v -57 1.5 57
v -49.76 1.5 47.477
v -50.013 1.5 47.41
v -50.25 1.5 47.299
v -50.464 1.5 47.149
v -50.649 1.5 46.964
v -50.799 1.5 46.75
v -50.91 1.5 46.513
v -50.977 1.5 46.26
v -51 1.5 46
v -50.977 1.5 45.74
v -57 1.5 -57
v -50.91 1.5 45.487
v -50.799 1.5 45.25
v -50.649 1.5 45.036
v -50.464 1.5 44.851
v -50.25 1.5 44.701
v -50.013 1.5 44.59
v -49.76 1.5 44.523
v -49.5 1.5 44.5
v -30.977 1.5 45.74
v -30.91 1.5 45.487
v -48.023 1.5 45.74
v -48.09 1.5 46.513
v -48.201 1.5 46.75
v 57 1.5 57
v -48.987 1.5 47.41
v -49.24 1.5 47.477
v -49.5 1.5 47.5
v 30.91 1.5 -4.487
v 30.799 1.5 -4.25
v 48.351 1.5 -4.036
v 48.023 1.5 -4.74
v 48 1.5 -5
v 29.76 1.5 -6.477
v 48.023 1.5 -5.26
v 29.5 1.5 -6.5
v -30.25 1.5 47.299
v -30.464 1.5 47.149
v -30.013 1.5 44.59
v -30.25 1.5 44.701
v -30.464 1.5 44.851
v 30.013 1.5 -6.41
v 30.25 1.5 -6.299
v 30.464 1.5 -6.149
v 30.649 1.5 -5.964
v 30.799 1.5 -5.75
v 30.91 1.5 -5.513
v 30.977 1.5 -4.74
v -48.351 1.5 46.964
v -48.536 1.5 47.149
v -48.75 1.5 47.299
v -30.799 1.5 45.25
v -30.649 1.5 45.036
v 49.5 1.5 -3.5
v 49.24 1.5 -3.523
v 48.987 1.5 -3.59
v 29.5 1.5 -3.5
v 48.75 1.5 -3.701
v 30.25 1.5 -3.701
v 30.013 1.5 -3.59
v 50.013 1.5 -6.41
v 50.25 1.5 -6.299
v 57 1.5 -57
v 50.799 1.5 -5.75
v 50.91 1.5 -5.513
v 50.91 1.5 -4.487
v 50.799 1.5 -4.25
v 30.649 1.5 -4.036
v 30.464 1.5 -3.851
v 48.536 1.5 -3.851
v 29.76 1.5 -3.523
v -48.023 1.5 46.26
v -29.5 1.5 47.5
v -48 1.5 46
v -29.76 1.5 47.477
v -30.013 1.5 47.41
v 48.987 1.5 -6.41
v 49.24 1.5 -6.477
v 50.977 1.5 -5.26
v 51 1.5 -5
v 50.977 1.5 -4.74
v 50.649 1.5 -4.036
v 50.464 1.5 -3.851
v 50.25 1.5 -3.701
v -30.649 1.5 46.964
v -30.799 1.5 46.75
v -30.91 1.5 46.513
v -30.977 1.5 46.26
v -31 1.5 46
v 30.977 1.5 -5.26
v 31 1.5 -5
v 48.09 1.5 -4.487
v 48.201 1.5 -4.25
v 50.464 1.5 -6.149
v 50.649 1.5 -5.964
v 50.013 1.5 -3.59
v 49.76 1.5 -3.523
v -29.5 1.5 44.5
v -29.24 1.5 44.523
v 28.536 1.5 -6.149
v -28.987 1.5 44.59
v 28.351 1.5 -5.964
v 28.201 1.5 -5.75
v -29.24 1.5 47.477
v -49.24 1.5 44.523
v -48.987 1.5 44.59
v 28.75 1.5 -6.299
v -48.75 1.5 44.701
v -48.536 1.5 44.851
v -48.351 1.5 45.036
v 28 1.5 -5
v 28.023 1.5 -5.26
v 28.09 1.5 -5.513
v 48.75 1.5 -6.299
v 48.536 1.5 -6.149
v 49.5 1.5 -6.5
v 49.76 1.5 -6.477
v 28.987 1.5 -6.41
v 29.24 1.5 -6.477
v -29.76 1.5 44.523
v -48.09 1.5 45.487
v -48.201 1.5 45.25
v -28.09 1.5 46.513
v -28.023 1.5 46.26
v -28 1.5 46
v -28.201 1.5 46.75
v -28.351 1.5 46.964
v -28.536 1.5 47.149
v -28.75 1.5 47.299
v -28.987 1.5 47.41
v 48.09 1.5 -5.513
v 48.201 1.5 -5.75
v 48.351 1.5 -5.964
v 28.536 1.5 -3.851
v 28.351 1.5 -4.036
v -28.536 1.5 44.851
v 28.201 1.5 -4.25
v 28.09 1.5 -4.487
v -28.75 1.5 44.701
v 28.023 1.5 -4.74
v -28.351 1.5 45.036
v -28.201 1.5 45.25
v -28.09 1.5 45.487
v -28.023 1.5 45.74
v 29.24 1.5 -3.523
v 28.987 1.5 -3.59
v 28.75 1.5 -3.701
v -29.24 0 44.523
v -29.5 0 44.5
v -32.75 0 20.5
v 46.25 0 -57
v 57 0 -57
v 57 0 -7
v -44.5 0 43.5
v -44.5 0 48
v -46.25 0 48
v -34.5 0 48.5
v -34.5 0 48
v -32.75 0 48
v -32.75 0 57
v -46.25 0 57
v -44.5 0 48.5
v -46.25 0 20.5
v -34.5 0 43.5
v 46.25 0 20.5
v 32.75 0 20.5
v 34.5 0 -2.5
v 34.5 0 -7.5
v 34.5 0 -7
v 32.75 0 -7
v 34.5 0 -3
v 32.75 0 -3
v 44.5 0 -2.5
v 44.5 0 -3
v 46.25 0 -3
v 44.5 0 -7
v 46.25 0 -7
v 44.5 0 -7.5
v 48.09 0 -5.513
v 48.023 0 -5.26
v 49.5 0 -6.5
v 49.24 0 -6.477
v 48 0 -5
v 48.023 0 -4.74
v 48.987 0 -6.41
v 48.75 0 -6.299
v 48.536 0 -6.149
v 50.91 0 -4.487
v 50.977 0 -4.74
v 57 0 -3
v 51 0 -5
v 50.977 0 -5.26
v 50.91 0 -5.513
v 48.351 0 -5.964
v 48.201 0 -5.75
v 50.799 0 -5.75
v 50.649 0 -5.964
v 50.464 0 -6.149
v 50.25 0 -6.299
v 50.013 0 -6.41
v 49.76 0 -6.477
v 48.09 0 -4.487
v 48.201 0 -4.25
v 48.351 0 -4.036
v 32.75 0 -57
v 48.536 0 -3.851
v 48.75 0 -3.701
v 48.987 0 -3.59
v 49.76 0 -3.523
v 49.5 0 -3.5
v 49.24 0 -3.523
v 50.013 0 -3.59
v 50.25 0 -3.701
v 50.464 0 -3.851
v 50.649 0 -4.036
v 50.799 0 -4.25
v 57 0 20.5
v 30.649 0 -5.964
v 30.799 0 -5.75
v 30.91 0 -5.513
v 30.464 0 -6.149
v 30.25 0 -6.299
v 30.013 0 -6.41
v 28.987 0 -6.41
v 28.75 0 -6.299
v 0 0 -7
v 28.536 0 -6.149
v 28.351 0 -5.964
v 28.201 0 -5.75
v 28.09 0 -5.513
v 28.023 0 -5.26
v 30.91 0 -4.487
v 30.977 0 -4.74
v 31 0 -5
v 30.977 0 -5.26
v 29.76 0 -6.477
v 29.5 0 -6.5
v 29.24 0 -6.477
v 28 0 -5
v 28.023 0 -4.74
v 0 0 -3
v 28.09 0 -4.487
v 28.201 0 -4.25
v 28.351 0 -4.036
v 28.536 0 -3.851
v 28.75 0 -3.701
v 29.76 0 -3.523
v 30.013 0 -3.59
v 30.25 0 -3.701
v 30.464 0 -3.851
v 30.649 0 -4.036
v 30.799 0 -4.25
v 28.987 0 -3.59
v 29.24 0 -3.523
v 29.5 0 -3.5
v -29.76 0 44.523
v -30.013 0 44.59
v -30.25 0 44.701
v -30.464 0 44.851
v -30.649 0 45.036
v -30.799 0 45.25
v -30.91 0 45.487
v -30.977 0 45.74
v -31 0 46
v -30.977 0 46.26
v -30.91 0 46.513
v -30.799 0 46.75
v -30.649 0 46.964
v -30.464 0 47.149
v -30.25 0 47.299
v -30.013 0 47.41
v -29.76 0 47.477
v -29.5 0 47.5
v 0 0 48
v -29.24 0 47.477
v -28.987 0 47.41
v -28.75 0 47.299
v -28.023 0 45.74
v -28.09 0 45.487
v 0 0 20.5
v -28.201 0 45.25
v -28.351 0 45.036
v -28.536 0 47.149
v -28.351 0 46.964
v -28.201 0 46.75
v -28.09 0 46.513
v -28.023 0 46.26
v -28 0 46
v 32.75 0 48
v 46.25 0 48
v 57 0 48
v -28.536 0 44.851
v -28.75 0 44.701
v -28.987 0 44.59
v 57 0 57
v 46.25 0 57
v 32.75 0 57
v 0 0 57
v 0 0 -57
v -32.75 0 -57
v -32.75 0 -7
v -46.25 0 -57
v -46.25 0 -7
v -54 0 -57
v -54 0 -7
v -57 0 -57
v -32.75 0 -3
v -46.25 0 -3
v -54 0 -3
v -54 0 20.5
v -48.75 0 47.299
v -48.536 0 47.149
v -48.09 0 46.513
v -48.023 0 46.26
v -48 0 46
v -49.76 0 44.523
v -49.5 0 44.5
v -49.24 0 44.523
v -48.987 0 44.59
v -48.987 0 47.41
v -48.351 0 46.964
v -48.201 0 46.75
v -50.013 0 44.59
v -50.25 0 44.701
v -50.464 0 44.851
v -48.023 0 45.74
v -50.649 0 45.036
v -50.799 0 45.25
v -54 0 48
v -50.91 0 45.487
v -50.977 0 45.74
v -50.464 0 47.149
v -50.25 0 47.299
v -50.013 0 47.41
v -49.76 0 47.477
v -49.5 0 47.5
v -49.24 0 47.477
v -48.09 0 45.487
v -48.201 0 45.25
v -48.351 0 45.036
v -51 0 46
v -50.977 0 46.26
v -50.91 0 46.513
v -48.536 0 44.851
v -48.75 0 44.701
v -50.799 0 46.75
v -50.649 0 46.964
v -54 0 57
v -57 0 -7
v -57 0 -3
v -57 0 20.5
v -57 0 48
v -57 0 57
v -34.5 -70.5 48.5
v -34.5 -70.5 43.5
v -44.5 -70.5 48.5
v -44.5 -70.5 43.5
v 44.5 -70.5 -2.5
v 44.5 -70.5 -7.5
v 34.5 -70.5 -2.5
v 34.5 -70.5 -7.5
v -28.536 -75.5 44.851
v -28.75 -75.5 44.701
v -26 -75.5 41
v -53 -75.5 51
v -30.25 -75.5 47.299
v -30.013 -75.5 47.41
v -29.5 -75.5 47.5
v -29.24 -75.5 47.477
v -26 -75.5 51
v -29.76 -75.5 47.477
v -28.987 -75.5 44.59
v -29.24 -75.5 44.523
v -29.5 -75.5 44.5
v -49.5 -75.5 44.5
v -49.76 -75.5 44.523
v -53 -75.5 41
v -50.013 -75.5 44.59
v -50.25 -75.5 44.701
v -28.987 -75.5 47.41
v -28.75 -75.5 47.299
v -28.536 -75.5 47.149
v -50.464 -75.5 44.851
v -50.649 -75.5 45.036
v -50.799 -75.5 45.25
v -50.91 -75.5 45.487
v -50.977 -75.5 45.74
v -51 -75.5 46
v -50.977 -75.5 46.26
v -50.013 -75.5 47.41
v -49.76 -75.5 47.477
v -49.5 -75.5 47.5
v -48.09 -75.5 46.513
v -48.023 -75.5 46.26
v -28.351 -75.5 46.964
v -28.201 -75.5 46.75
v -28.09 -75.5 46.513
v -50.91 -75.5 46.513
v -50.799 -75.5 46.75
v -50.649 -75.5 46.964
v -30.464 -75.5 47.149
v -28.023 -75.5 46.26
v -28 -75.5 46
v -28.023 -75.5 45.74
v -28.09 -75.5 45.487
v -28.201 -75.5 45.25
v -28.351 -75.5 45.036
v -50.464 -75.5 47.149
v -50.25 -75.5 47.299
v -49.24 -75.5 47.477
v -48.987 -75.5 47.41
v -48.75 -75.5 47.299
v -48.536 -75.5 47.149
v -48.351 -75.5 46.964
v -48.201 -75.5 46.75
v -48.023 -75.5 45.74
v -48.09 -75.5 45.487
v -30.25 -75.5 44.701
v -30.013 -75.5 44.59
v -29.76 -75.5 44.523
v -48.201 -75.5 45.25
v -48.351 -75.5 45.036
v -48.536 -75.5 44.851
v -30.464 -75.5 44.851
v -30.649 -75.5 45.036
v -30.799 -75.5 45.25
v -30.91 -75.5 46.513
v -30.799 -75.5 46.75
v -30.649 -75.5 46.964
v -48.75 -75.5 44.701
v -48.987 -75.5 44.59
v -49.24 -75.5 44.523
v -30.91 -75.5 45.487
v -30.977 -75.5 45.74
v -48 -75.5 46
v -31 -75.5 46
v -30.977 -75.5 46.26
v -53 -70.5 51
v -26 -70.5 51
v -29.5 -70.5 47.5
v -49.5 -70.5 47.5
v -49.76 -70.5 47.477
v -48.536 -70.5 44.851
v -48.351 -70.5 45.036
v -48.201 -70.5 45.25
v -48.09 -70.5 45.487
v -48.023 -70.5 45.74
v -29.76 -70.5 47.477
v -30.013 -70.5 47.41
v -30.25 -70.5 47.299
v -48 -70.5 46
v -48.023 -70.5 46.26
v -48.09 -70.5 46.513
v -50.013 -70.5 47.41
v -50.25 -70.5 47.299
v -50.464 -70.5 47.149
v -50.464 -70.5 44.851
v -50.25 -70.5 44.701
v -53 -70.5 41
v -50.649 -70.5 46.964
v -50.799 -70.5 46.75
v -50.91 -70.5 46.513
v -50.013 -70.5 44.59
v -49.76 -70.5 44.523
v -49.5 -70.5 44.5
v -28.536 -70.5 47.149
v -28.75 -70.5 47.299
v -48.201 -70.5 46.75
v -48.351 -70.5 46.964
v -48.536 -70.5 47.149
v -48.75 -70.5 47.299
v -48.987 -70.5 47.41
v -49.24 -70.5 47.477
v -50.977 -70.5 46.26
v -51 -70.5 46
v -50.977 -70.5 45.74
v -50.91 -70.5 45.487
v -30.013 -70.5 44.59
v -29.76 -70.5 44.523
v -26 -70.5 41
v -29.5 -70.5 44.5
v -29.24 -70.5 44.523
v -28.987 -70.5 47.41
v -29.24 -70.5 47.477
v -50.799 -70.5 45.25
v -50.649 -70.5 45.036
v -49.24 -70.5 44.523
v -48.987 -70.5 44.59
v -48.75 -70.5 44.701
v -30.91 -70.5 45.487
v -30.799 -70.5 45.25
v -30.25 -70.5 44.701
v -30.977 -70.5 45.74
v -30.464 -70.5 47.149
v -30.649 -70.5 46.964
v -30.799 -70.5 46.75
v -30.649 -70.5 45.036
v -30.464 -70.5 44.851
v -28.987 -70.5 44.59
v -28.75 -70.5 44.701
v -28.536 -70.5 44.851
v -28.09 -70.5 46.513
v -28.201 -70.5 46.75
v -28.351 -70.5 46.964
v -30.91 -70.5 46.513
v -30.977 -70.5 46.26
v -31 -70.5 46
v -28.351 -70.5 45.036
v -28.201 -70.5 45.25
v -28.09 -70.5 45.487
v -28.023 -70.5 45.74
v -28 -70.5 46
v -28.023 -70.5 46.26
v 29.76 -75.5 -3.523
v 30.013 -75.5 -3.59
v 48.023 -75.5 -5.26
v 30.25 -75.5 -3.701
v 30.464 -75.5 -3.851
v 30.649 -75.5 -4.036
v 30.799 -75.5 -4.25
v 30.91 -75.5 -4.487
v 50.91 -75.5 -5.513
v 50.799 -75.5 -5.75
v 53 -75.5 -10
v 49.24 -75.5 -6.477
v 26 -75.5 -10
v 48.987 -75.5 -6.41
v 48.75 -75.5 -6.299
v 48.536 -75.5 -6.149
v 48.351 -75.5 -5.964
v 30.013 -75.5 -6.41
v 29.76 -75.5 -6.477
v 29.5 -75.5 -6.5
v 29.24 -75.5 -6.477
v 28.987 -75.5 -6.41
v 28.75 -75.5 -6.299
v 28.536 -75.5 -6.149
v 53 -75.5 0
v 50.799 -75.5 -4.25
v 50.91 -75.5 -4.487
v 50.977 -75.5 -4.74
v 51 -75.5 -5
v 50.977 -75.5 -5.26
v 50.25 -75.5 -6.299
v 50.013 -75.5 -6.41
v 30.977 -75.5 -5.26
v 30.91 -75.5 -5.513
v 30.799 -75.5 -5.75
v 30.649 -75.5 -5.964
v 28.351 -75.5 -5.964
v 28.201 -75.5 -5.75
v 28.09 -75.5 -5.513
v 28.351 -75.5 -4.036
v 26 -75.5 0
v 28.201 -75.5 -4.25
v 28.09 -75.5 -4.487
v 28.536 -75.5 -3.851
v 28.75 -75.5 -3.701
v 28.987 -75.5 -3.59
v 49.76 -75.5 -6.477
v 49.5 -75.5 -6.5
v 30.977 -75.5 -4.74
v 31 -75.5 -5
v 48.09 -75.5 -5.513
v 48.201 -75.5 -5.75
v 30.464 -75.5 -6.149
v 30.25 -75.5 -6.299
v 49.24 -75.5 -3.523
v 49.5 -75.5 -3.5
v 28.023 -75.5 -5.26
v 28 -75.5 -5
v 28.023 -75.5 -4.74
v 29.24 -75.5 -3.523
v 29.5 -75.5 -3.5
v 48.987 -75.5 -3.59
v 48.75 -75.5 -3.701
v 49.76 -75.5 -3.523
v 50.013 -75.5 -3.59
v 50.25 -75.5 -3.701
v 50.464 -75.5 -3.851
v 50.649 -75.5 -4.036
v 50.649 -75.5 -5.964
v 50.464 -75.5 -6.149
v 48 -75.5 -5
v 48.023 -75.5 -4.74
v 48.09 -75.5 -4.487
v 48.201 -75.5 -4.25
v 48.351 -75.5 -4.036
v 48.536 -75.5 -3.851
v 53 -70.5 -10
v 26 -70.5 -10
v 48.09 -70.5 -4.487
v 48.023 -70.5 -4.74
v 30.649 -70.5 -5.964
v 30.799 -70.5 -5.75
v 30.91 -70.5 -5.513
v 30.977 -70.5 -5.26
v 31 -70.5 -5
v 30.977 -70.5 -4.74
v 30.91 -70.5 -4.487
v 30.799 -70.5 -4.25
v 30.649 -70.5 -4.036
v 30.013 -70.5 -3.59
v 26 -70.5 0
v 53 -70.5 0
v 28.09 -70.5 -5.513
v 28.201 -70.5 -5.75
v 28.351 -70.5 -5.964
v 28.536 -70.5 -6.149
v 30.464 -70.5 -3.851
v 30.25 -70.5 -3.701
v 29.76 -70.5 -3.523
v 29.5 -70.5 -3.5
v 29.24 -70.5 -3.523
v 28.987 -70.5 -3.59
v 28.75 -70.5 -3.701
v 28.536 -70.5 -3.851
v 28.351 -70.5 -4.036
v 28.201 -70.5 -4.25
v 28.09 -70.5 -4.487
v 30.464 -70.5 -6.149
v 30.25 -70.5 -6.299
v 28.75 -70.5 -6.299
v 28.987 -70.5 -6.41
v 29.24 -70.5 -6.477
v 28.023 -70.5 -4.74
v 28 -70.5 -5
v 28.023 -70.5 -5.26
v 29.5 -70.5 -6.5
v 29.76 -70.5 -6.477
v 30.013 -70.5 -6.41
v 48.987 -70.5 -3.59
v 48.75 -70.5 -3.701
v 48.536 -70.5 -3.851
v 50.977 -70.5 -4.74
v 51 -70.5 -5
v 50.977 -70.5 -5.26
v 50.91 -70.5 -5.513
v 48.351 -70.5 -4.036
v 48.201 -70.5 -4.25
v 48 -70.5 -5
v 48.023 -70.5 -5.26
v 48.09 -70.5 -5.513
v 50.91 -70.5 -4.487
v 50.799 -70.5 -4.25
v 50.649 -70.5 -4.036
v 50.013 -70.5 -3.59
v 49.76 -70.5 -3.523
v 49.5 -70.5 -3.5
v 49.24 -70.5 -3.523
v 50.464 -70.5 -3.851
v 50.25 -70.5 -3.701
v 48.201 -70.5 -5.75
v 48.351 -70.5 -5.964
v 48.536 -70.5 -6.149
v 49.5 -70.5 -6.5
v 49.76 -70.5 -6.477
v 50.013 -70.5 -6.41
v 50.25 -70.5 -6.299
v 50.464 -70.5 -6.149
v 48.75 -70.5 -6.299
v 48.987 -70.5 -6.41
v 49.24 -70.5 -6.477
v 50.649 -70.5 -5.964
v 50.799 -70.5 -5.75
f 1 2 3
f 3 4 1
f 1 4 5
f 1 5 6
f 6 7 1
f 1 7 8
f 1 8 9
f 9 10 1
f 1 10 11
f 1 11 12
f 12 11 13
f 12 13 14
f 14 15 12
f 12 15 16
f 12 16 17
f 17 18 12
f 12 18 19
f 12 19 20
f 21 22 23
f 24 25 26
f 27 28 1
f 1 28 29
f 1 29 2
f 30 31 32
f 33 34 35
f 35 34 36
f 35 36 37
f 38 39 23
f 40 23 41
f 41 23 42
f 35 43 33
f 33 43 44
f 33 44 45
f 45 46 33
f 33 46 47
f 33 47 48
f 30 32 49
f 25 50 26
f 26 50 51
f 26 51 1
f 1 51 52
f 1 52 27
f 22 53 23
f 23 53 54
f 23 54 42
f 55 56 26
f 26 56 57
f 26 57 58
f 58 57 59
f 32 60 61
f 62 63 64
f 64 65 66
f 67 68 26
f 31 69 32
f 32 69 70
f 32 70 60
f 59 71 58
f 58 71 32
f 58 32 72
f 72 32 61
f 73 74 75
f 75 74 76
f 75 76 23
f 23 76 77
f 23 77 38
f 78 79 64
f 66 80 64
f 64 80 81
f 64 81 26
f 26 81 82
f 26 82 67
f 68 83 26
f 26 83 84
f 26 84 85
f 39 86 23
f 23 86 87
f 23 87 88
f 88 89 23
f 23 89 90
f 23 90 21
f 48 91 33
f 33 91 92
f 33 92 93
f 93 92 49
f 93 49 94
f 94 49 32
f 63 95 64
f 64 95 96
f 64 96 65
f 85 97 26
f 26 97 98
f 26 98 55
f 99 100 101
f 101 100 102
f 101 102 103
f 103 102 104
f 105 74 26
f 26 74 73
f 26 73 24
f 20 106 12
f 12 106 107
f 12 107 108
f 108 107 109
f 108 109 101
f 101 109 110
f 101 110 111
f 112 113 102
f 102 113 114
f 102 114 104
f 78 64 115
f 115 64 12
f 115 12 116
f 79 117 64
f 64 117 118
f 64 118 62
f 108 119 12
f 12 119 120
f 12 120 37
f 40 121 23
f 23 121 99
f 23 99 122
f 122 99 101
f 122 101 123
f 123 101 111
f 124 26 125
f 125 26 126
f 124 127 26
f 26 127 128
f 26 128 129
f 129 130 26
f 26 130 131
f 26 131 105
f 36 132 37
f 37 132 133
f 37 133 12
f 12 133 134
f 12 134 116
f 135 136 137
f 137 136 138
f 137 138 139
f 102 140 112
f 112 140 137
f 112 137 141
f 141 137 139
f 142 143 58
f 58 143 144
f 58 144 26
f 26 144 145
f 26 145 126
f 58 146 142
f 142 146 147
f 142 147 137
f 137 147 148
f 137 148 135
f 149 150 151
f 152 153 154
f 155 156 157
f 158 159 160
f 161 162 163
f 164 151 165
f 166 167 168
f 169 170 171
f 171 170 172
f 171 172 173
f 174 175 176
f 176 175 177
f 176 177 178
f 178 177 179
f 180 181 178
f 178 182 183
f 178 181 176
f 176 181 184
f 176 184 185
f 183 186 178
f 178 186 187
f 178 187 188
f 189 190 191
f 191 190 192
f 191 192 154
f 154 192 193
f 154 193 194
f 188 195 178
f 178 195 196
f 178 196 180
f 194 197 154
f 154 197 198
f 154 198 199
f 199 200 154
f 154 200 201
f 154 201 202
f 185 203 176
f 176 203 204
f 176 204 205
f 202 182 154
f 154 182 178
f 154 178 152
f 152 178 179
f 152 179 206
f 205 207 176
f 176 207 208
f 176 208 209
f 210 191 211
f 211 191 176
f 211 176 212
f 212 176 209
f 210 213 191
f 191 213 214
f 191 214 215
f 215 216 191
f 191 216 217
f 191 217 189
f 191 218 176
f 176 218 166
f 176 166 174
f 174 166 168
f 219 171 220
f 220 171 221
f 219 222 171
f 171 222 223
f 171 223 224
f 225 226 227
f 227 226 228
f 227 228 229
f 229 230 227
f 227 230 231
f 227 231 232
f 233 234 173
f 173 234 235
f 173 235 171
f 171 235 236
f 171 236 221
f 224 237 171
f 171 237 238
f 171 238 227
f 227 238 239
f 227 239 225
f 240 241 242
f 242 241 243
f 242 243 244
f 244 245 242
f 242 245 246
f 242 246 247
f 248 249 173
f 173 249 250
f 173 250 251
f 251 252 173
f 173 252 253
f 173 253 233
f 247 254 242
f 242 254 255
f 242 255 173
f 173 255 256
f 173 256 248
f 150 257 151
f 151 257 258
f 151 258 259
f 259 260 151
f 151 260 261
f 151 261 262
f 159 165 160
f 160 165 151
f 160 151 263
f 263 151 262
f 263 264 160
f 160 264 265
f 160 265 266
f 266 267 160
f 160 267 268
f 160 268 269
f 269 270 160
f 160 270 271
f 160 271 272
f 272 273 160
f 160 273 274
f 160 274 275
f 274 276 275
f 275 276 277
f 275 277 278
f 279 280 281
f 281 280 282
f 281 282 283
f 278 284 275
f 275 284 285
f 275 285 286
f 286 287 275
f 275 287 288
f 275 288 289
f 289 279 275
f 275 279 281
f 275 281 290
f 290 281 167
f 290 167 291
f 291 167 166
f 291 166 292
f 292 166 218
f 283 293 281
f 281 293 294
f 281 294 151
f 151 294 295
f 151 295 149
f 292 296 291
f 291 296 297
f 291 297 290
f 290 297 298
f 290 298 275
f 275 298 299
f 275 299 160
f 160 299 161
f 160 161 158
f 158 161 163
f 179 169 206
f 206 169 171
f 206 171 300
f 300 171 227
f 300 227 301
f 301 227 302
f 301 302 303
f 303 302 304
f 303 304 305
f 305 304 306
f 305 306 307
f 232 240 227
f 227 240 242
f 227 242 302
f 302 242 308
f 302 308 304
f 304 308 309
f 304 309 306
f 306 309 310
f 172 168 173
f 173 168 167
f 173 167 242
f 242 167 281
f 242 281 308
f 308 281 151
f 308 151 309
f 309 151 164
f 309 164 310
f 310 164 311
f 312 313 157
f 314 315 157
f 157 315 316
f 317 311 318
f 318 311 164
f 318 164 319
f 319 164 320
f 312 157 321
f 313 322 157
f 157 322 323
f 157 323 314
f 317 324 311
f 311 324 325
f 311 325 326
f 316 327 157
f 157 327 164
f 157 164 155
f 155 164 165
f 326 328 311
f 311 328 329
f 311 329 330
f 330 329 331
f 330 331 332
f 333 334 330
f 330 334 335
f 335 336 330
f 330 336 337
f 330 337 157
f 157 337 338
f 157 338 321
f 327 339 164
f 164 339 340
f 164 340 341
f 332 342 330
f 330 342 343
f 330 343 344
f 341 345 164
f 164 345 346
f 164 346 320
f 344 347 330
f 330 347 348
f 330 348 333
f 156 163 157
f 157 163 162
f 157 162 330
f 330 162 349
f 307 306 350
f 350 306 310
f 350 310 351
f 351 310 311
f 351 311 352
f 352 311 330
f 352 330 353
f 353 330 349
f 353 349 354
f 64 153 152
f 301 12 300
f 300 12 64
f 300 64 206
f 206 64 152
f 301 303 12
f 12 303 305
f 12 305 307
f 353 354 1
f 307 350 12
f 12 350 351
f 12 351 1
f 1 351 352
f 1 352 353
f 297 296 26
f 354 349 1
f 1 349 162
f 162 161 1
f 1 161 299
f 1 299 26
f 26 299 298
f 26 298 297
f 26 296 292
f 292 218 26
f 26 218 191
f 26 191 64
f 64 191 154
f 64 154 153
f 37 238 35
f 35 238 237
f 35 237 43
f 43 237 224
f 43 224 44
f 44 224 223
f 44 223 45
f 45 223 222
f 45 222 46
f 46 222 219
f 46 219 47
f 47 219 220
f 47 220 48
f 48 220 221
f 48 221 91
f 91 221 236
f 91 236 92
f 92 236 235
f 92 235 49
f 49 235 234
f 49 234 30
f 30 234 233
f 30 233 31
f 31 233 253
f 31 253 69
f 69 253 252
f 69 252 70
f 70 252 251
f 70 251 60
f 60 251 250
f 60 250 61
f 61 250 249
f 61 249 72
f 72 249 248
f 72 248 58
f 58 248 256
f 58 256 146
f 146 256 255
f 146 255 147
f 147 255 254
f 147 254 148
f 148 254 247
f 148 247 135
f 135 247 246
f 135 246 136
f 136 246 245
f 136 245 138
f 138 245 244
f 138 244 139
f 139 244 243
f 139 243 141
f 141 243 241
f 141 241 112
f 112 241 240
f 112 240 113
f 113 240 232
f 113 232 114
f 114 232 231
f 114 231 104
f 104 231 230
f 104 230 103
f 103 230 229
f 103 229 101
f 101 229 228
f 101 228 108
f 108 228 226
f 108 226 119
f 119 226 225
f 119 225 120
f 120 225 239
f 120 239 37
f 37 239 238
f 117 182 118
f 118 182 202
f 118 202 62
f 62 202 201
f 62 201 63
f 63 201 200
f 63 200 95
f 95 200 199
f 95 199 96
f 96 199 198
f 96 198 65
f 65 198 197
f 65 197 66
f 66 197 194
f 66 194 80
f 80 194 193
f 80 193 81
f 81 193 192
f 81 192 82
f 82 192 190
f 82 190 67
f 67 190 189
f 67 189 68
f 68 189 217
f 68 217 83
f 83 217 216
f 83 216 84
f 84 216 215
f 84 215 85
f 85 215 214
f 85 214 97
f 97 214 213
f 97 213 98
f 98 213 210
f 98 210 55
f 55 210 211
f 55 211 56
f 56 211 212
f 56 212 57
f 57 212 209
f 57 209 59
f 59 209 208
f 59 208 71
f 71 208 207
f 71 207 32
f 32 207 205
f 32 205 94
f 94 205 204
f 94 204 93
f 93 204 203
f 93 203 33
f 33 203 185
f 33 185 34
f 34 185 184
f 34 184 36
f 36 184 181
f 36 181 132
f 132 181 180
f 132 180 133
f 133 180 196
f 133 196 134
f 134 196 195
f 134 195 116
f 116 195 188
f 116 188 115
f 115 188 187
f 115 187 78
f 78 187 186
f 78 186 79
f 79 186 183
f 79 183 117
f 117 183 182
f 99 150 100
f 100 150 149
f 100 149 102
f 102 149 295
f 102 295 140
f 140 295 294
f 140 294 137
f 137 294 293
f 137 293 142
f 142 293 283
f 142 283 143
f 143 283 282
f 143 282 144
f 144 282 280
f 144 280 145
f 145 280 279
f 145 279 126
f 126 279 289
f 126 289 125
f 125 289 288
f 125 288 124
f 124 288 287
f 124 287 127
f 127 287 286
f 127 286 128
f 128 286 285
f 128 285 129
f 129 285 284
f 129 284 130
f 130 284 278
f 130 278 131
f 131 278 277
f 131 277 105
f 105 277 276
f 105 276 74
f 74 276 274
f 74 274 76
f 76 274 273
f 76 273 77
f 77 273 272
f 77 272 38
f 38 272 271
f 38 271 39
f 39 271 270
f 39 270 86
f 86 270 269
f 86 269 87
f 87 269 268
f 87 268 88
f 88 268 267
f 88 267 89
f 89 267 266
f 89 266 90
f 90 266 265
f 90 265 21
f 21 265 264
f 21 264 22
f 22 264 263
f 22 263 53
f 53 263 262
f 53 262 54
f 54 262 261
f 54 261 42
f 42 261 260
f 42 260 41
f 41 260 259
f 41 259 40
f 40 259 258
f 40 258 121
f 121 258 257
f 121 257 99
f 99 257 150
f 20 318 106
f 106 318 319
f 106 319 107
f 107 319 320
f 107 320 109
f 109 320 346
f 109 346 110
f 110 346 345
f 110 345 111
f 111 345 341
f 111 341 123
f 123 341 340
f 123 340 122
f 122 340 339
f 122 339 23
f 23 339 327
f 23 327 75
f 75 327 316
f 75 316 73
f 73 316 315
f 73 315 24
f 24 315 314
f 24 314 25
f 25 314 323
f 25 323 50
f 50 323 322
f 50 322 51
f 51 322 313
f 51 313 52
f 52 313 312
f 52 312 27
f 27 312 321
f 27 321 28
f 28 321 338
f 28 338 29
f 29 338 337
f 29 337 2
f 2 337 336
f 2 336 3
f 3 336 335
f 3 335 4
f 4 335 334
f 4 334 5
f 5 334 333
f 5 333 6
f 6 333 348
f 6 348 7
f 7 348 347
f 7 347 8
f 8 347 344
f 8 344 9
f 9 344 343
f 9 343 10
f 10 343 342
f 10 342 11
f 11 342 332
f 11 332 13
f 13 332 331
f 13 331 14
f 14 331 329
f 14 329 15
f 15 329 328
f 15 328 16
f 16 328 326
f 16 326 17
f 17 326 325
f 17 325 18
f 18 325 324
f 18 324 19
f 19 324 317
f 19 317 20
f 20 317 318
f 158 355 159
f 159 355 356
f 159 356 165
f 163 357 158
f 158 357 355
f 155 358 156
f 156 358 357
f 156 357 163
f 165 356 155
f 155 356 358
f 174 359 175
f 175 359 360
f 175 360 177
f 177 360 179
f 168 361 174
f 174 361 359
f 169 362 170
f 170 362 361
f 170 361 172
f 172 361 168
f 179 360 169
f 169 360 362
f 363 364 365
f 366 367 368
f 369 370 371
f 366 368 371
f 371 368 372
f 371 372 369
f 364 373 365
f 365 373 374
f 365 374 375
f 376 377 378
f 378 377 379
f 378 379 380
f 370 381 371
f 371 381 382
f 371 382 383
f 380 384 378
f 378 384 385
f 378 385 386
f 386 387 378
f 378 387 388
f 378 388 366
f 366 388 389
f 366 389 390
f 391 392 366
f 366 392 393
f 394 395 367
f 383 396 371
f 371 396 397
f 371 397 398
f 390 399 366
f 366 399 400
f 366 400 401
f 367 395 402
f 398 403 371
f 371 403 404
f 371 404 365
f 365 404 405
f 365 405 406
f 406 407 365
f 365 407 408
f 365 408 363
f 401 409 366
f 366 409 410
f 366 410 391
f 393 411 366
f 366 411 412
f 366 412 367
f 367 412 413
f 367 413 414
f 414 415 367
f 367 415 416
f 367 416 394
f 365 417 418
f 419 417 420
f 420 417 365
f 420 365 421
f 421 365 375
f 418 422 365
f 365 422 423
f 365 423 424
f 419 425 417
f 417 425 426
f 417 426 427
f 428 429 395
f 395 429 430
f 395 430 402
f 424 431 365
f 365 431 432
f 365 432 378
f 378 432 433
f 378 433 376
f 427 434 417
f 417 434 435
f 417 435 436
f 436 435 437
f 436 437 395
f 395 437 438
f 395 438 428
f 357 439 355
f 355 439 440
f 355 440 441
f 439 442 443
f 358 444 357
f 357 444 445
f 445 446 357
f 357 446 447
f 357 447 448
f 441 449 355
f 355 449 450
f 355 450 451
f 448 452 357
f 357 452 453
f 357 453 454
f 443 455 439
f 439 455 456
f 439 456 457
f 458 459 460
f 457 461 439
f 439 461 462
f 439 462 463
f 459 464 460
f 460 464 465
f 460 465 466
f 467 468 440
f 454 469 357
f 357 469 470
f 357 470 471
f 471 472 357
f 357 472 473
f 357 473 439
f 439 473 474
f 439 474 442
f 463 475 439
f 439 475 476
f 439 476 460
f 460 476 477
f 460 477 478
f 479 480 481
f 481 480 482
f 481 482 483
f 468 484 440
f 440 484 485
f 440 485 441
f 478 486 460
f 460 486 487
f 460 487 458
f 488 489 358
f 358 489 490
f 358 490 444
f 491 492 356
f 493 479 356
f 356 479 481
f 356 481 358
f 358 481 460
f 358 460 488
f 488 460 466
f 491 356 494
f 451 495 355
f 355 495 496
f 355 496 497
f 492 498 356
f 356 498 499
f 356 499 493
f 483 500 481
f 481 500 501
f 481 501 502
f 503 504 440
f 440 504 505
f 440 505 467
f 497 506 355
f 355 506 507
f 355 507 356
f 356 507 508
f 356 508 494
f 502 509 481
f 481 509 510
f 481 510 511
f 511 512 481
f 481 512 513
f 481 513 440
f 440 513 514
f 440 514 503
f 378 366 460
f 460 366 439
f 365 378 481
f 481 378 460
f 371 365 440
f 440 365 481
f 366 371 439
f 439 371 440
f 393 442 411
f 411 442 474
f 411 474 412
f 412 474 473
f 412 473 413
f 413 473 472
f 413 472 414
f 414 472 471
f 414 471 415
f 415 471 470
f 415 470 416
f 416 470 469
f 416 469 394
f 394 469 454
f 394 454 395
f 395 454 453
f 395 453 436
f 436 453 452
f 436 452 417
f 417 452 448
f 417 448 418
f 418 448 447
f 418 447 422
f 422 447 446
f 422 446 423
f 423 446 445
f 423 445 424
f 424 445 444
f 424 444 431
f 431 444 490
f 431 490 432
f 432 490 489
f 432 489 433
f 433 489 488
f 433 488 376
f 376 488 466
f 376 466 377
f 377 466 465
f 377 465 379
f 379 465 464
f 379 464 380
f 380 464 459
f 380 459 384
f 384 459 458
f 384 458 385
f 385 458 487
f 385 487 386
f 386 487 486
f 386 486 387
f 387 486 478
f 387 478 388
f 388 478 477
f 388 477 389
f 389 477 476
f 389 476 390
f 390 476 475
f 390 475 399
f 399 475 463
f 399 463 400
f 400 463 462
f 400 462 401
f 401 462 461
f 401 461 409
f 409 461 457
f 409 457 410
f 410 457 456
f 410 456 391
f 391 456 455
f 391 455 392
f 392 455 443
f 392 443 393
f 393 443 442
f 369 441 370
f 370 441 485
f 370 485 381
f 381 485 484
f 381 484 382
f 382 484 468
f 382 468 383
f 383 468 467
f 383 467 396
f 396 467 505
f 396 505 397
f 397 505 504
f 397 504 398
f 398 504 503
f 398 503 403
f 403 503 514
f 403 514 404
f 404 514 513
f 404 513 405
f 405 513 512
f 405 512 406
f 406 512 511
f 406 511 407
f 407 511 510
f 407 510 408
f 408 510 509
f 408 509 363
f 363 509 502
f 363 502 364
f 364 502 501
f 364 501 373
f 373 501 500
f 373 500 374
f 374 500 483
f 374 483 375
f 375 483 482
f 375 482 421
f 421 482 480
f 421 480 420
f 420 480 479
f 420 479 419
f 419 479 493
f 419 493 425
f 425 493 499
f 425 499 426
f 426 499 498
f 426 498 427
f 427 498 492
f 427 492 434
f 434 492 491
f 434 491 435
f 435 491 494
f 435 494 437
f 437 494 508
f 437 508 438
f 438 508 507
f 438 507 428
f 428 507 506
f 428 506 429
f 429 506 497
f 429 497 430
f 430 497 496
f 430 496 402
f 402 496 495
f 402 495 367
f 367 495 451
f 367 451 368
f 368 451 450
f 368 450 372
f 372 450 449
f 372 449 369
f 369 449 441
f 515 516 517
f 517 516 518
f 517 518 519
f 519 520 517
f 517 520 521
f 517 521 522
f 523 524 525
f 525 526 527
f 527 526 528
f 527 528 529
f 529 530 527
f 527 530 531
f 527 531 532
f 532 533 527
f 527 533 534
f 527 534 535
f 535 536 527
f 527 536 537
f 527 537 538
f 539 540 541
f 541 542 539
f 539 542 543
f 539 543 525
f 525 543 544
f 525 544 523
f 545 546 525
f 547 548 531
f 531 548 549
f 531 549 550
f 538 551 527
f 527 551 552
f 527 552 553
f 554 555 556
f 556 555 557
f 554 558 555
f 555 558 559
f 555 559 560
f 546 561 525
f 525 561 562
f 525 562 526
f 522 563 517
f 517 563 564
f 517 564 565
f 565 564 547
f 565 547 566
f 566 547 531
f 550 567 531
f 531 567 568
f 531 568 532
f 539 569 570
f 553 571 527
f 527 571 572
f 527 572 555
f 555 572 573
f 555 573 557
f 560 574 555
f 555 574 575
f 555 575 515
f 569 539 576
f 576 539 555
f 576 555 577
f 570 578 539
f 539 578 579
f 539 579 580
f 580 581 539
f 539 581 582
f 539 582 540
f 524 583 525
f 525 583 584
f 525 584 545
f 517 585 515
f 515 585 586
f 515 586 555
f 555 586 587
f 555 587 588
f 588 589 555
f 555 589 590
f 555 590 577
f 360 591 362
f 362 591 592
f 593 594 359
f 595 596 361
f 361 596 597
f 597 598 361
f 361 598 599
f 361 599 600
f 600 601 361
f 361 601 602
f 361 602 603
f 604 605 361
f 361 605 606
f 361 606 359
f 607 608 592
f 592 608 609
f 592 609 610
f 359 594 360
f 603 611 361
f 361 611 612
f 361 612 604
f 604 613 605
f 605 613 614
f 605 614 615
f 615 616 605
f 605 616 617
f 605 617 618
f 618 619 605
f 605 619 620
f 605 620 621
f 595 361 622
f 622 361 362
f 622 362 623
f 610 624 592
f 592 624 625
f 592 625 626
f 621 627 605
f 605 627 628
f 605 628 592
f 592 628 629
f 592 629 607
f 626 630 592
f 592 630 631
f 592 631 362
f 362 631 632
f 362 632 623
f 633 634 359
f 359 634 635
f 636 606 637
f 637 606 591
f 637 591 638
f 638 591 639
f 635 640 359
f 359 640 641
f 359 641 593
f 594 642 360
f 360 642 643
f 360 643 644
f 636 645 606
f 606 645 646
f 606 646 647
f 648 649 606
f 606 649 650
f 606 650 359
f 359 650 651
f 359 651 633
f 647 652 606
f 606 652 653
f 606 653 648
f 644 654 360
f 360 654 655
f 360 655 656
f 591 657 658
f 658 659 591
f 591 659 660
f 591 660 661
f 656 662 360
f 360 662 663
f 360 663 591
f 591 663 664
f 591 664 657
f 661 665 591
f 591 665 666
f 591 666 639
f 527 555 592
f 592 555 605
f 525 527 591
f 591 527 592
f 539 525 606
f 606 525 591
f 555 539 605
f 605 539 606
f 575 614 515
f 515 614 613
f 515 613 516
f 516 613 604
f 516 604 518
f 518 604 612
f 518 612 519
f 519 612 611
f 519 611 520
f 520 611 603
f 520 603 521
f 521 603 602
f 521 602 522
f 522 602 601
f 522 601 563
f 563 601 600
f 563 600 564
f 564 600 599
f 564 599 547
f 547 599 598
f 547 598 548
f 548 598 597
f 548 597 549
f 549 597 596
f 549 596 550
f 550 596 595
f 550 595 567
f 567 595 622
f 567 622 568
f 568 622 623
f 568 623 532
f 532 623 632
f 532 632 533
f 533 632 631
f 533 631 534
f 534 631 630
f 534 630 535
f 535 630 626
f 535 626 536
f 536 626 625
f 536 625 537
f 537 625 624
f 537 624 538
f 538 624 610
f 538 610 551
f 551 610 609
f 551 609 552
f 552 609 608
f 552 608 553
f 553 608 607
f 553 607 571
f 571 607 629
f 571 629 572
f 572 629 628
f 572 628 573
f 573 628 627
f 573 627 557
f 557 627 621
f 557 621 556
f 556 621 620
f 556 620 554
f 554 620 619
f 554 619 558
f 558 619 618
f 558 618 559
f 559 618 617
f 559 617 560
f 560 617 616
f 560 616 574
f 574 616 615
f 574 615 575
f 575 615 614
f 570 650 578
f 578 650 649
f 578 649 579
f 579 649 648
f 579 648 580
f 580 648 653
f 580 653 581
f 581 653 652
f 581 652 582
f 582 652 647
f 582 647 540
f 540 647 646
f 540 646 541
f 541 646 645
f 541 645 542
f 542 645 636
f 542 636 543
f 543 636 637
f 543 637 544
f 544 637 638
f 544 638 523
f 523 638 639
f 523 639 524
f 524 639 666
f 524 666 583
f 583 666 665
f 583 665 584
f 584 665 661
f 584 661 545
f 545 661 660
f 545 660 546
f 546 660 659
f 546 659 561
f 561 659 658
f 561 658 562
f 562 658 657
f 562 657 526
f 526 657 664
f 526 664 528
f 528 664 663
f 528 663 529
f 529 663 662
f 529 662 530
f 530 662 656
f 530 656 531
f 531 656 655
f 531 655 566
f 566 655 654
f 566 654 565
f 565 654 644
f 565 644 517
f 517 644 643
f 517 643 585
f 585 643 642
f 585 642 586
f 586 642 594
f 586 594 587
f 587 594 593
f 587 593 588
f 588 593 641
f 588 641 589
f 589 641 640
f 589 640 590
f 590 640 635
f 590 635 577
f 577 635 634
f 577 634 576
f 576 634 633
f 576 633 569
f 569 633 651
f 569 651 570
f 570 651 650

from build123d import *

# Parameters (mm, degrees)
SKETCH1_W           = 114
SKETCH1_H           = 114
SKETCH1_R           = 1.5
BOSS_EXTRUDE1_DEPTH = 1.5
SKETCH2_W           = 10
SKETCH2_H           = 5
BOSS_EXTRUDE2_DEPTH = 72
SKETCH3_W           = 27
SKETCH3_H           = 10
SKETCH3_R           = 1.5
BOSS_EXTRUDE3_DEPTH = 5


with BuildPart() as part:
    # Sketch1 → Boss-Extrude1 (new body)
    with BuildSketch(Plane(origin=(0, 0, 0), x_dir=(1, 0, 0), z_dir=(0, 1, 0))):
        Rectangle(SKETCH1_W, SKETCH1_H)
        with Locations((29.5, 5)):
            Circle(SKETCH1_R, mode=Mode.SUBTRACT)
        with Locations((49.5, 5)):
            Circle(SKETCH1_R, mode=Mode.SUBTRACT)
        with Locations((-29.5, -46)):
            Circle(SKETCH1_R, mode=Mode.SUBTRACT)
        with Locations((-49.5, -46)):
            Circle(SKETCH1_R, mode=Mode.SUBTRACT)
    extrude(amount=BOSS_EXTRUDE1_DEPTH)

    # Sketch2 → Boss-Extrude2 (add)
    with BuildSketch(Plane(origin=(0, 1.5, 0), x_dir=(1, 0, 0), z_dir=(0, 1, 0))):
        with Locations((-39.5, -46)):
            Rectangle(SKETCH2_W, SKETCH2_H)
        with Locations((39.5, 5)):
            Rectangle(SKETCH2_W, SKETCH2_H)
    extrude(amount=-BOSS_EXTRUDE2_DEPTH)

    # Sketch3 → Boss-Extrude3 (add)
    with BuildSketch(Plane(origin=(0, -70.5, 0), x_dir=(-1, 0, 0), z_dir=(0, -1, 0))):
        with Locations((39.5, -46)):
            Rectangle(SKETCH3_W, SKETCH3_H)
        with Locations((49.5, -46)):
            Circle(SKETCH3_R, mode=Mode.SUBTRACT)
        with Locations((29.5, -46)):
            Circle(SKETCH3_R, mode=Mode.SUBTRACT)
        with Locations((-39.5, 5)):
            Rectangle(SKETCH3_W, SKETCH3_H)
        with Locations((-29.5, 5)):
            Circle(SKETCH3_R, mode=Mode.SUBTRACT)
        with Locations((-49.5, 5)):
            Circle(SKETCH3_R, mode=Mode.SUBTRACT)
    extrude(amount=BOSS_EXTRUDE3_DEPTH)


solid = part.part
